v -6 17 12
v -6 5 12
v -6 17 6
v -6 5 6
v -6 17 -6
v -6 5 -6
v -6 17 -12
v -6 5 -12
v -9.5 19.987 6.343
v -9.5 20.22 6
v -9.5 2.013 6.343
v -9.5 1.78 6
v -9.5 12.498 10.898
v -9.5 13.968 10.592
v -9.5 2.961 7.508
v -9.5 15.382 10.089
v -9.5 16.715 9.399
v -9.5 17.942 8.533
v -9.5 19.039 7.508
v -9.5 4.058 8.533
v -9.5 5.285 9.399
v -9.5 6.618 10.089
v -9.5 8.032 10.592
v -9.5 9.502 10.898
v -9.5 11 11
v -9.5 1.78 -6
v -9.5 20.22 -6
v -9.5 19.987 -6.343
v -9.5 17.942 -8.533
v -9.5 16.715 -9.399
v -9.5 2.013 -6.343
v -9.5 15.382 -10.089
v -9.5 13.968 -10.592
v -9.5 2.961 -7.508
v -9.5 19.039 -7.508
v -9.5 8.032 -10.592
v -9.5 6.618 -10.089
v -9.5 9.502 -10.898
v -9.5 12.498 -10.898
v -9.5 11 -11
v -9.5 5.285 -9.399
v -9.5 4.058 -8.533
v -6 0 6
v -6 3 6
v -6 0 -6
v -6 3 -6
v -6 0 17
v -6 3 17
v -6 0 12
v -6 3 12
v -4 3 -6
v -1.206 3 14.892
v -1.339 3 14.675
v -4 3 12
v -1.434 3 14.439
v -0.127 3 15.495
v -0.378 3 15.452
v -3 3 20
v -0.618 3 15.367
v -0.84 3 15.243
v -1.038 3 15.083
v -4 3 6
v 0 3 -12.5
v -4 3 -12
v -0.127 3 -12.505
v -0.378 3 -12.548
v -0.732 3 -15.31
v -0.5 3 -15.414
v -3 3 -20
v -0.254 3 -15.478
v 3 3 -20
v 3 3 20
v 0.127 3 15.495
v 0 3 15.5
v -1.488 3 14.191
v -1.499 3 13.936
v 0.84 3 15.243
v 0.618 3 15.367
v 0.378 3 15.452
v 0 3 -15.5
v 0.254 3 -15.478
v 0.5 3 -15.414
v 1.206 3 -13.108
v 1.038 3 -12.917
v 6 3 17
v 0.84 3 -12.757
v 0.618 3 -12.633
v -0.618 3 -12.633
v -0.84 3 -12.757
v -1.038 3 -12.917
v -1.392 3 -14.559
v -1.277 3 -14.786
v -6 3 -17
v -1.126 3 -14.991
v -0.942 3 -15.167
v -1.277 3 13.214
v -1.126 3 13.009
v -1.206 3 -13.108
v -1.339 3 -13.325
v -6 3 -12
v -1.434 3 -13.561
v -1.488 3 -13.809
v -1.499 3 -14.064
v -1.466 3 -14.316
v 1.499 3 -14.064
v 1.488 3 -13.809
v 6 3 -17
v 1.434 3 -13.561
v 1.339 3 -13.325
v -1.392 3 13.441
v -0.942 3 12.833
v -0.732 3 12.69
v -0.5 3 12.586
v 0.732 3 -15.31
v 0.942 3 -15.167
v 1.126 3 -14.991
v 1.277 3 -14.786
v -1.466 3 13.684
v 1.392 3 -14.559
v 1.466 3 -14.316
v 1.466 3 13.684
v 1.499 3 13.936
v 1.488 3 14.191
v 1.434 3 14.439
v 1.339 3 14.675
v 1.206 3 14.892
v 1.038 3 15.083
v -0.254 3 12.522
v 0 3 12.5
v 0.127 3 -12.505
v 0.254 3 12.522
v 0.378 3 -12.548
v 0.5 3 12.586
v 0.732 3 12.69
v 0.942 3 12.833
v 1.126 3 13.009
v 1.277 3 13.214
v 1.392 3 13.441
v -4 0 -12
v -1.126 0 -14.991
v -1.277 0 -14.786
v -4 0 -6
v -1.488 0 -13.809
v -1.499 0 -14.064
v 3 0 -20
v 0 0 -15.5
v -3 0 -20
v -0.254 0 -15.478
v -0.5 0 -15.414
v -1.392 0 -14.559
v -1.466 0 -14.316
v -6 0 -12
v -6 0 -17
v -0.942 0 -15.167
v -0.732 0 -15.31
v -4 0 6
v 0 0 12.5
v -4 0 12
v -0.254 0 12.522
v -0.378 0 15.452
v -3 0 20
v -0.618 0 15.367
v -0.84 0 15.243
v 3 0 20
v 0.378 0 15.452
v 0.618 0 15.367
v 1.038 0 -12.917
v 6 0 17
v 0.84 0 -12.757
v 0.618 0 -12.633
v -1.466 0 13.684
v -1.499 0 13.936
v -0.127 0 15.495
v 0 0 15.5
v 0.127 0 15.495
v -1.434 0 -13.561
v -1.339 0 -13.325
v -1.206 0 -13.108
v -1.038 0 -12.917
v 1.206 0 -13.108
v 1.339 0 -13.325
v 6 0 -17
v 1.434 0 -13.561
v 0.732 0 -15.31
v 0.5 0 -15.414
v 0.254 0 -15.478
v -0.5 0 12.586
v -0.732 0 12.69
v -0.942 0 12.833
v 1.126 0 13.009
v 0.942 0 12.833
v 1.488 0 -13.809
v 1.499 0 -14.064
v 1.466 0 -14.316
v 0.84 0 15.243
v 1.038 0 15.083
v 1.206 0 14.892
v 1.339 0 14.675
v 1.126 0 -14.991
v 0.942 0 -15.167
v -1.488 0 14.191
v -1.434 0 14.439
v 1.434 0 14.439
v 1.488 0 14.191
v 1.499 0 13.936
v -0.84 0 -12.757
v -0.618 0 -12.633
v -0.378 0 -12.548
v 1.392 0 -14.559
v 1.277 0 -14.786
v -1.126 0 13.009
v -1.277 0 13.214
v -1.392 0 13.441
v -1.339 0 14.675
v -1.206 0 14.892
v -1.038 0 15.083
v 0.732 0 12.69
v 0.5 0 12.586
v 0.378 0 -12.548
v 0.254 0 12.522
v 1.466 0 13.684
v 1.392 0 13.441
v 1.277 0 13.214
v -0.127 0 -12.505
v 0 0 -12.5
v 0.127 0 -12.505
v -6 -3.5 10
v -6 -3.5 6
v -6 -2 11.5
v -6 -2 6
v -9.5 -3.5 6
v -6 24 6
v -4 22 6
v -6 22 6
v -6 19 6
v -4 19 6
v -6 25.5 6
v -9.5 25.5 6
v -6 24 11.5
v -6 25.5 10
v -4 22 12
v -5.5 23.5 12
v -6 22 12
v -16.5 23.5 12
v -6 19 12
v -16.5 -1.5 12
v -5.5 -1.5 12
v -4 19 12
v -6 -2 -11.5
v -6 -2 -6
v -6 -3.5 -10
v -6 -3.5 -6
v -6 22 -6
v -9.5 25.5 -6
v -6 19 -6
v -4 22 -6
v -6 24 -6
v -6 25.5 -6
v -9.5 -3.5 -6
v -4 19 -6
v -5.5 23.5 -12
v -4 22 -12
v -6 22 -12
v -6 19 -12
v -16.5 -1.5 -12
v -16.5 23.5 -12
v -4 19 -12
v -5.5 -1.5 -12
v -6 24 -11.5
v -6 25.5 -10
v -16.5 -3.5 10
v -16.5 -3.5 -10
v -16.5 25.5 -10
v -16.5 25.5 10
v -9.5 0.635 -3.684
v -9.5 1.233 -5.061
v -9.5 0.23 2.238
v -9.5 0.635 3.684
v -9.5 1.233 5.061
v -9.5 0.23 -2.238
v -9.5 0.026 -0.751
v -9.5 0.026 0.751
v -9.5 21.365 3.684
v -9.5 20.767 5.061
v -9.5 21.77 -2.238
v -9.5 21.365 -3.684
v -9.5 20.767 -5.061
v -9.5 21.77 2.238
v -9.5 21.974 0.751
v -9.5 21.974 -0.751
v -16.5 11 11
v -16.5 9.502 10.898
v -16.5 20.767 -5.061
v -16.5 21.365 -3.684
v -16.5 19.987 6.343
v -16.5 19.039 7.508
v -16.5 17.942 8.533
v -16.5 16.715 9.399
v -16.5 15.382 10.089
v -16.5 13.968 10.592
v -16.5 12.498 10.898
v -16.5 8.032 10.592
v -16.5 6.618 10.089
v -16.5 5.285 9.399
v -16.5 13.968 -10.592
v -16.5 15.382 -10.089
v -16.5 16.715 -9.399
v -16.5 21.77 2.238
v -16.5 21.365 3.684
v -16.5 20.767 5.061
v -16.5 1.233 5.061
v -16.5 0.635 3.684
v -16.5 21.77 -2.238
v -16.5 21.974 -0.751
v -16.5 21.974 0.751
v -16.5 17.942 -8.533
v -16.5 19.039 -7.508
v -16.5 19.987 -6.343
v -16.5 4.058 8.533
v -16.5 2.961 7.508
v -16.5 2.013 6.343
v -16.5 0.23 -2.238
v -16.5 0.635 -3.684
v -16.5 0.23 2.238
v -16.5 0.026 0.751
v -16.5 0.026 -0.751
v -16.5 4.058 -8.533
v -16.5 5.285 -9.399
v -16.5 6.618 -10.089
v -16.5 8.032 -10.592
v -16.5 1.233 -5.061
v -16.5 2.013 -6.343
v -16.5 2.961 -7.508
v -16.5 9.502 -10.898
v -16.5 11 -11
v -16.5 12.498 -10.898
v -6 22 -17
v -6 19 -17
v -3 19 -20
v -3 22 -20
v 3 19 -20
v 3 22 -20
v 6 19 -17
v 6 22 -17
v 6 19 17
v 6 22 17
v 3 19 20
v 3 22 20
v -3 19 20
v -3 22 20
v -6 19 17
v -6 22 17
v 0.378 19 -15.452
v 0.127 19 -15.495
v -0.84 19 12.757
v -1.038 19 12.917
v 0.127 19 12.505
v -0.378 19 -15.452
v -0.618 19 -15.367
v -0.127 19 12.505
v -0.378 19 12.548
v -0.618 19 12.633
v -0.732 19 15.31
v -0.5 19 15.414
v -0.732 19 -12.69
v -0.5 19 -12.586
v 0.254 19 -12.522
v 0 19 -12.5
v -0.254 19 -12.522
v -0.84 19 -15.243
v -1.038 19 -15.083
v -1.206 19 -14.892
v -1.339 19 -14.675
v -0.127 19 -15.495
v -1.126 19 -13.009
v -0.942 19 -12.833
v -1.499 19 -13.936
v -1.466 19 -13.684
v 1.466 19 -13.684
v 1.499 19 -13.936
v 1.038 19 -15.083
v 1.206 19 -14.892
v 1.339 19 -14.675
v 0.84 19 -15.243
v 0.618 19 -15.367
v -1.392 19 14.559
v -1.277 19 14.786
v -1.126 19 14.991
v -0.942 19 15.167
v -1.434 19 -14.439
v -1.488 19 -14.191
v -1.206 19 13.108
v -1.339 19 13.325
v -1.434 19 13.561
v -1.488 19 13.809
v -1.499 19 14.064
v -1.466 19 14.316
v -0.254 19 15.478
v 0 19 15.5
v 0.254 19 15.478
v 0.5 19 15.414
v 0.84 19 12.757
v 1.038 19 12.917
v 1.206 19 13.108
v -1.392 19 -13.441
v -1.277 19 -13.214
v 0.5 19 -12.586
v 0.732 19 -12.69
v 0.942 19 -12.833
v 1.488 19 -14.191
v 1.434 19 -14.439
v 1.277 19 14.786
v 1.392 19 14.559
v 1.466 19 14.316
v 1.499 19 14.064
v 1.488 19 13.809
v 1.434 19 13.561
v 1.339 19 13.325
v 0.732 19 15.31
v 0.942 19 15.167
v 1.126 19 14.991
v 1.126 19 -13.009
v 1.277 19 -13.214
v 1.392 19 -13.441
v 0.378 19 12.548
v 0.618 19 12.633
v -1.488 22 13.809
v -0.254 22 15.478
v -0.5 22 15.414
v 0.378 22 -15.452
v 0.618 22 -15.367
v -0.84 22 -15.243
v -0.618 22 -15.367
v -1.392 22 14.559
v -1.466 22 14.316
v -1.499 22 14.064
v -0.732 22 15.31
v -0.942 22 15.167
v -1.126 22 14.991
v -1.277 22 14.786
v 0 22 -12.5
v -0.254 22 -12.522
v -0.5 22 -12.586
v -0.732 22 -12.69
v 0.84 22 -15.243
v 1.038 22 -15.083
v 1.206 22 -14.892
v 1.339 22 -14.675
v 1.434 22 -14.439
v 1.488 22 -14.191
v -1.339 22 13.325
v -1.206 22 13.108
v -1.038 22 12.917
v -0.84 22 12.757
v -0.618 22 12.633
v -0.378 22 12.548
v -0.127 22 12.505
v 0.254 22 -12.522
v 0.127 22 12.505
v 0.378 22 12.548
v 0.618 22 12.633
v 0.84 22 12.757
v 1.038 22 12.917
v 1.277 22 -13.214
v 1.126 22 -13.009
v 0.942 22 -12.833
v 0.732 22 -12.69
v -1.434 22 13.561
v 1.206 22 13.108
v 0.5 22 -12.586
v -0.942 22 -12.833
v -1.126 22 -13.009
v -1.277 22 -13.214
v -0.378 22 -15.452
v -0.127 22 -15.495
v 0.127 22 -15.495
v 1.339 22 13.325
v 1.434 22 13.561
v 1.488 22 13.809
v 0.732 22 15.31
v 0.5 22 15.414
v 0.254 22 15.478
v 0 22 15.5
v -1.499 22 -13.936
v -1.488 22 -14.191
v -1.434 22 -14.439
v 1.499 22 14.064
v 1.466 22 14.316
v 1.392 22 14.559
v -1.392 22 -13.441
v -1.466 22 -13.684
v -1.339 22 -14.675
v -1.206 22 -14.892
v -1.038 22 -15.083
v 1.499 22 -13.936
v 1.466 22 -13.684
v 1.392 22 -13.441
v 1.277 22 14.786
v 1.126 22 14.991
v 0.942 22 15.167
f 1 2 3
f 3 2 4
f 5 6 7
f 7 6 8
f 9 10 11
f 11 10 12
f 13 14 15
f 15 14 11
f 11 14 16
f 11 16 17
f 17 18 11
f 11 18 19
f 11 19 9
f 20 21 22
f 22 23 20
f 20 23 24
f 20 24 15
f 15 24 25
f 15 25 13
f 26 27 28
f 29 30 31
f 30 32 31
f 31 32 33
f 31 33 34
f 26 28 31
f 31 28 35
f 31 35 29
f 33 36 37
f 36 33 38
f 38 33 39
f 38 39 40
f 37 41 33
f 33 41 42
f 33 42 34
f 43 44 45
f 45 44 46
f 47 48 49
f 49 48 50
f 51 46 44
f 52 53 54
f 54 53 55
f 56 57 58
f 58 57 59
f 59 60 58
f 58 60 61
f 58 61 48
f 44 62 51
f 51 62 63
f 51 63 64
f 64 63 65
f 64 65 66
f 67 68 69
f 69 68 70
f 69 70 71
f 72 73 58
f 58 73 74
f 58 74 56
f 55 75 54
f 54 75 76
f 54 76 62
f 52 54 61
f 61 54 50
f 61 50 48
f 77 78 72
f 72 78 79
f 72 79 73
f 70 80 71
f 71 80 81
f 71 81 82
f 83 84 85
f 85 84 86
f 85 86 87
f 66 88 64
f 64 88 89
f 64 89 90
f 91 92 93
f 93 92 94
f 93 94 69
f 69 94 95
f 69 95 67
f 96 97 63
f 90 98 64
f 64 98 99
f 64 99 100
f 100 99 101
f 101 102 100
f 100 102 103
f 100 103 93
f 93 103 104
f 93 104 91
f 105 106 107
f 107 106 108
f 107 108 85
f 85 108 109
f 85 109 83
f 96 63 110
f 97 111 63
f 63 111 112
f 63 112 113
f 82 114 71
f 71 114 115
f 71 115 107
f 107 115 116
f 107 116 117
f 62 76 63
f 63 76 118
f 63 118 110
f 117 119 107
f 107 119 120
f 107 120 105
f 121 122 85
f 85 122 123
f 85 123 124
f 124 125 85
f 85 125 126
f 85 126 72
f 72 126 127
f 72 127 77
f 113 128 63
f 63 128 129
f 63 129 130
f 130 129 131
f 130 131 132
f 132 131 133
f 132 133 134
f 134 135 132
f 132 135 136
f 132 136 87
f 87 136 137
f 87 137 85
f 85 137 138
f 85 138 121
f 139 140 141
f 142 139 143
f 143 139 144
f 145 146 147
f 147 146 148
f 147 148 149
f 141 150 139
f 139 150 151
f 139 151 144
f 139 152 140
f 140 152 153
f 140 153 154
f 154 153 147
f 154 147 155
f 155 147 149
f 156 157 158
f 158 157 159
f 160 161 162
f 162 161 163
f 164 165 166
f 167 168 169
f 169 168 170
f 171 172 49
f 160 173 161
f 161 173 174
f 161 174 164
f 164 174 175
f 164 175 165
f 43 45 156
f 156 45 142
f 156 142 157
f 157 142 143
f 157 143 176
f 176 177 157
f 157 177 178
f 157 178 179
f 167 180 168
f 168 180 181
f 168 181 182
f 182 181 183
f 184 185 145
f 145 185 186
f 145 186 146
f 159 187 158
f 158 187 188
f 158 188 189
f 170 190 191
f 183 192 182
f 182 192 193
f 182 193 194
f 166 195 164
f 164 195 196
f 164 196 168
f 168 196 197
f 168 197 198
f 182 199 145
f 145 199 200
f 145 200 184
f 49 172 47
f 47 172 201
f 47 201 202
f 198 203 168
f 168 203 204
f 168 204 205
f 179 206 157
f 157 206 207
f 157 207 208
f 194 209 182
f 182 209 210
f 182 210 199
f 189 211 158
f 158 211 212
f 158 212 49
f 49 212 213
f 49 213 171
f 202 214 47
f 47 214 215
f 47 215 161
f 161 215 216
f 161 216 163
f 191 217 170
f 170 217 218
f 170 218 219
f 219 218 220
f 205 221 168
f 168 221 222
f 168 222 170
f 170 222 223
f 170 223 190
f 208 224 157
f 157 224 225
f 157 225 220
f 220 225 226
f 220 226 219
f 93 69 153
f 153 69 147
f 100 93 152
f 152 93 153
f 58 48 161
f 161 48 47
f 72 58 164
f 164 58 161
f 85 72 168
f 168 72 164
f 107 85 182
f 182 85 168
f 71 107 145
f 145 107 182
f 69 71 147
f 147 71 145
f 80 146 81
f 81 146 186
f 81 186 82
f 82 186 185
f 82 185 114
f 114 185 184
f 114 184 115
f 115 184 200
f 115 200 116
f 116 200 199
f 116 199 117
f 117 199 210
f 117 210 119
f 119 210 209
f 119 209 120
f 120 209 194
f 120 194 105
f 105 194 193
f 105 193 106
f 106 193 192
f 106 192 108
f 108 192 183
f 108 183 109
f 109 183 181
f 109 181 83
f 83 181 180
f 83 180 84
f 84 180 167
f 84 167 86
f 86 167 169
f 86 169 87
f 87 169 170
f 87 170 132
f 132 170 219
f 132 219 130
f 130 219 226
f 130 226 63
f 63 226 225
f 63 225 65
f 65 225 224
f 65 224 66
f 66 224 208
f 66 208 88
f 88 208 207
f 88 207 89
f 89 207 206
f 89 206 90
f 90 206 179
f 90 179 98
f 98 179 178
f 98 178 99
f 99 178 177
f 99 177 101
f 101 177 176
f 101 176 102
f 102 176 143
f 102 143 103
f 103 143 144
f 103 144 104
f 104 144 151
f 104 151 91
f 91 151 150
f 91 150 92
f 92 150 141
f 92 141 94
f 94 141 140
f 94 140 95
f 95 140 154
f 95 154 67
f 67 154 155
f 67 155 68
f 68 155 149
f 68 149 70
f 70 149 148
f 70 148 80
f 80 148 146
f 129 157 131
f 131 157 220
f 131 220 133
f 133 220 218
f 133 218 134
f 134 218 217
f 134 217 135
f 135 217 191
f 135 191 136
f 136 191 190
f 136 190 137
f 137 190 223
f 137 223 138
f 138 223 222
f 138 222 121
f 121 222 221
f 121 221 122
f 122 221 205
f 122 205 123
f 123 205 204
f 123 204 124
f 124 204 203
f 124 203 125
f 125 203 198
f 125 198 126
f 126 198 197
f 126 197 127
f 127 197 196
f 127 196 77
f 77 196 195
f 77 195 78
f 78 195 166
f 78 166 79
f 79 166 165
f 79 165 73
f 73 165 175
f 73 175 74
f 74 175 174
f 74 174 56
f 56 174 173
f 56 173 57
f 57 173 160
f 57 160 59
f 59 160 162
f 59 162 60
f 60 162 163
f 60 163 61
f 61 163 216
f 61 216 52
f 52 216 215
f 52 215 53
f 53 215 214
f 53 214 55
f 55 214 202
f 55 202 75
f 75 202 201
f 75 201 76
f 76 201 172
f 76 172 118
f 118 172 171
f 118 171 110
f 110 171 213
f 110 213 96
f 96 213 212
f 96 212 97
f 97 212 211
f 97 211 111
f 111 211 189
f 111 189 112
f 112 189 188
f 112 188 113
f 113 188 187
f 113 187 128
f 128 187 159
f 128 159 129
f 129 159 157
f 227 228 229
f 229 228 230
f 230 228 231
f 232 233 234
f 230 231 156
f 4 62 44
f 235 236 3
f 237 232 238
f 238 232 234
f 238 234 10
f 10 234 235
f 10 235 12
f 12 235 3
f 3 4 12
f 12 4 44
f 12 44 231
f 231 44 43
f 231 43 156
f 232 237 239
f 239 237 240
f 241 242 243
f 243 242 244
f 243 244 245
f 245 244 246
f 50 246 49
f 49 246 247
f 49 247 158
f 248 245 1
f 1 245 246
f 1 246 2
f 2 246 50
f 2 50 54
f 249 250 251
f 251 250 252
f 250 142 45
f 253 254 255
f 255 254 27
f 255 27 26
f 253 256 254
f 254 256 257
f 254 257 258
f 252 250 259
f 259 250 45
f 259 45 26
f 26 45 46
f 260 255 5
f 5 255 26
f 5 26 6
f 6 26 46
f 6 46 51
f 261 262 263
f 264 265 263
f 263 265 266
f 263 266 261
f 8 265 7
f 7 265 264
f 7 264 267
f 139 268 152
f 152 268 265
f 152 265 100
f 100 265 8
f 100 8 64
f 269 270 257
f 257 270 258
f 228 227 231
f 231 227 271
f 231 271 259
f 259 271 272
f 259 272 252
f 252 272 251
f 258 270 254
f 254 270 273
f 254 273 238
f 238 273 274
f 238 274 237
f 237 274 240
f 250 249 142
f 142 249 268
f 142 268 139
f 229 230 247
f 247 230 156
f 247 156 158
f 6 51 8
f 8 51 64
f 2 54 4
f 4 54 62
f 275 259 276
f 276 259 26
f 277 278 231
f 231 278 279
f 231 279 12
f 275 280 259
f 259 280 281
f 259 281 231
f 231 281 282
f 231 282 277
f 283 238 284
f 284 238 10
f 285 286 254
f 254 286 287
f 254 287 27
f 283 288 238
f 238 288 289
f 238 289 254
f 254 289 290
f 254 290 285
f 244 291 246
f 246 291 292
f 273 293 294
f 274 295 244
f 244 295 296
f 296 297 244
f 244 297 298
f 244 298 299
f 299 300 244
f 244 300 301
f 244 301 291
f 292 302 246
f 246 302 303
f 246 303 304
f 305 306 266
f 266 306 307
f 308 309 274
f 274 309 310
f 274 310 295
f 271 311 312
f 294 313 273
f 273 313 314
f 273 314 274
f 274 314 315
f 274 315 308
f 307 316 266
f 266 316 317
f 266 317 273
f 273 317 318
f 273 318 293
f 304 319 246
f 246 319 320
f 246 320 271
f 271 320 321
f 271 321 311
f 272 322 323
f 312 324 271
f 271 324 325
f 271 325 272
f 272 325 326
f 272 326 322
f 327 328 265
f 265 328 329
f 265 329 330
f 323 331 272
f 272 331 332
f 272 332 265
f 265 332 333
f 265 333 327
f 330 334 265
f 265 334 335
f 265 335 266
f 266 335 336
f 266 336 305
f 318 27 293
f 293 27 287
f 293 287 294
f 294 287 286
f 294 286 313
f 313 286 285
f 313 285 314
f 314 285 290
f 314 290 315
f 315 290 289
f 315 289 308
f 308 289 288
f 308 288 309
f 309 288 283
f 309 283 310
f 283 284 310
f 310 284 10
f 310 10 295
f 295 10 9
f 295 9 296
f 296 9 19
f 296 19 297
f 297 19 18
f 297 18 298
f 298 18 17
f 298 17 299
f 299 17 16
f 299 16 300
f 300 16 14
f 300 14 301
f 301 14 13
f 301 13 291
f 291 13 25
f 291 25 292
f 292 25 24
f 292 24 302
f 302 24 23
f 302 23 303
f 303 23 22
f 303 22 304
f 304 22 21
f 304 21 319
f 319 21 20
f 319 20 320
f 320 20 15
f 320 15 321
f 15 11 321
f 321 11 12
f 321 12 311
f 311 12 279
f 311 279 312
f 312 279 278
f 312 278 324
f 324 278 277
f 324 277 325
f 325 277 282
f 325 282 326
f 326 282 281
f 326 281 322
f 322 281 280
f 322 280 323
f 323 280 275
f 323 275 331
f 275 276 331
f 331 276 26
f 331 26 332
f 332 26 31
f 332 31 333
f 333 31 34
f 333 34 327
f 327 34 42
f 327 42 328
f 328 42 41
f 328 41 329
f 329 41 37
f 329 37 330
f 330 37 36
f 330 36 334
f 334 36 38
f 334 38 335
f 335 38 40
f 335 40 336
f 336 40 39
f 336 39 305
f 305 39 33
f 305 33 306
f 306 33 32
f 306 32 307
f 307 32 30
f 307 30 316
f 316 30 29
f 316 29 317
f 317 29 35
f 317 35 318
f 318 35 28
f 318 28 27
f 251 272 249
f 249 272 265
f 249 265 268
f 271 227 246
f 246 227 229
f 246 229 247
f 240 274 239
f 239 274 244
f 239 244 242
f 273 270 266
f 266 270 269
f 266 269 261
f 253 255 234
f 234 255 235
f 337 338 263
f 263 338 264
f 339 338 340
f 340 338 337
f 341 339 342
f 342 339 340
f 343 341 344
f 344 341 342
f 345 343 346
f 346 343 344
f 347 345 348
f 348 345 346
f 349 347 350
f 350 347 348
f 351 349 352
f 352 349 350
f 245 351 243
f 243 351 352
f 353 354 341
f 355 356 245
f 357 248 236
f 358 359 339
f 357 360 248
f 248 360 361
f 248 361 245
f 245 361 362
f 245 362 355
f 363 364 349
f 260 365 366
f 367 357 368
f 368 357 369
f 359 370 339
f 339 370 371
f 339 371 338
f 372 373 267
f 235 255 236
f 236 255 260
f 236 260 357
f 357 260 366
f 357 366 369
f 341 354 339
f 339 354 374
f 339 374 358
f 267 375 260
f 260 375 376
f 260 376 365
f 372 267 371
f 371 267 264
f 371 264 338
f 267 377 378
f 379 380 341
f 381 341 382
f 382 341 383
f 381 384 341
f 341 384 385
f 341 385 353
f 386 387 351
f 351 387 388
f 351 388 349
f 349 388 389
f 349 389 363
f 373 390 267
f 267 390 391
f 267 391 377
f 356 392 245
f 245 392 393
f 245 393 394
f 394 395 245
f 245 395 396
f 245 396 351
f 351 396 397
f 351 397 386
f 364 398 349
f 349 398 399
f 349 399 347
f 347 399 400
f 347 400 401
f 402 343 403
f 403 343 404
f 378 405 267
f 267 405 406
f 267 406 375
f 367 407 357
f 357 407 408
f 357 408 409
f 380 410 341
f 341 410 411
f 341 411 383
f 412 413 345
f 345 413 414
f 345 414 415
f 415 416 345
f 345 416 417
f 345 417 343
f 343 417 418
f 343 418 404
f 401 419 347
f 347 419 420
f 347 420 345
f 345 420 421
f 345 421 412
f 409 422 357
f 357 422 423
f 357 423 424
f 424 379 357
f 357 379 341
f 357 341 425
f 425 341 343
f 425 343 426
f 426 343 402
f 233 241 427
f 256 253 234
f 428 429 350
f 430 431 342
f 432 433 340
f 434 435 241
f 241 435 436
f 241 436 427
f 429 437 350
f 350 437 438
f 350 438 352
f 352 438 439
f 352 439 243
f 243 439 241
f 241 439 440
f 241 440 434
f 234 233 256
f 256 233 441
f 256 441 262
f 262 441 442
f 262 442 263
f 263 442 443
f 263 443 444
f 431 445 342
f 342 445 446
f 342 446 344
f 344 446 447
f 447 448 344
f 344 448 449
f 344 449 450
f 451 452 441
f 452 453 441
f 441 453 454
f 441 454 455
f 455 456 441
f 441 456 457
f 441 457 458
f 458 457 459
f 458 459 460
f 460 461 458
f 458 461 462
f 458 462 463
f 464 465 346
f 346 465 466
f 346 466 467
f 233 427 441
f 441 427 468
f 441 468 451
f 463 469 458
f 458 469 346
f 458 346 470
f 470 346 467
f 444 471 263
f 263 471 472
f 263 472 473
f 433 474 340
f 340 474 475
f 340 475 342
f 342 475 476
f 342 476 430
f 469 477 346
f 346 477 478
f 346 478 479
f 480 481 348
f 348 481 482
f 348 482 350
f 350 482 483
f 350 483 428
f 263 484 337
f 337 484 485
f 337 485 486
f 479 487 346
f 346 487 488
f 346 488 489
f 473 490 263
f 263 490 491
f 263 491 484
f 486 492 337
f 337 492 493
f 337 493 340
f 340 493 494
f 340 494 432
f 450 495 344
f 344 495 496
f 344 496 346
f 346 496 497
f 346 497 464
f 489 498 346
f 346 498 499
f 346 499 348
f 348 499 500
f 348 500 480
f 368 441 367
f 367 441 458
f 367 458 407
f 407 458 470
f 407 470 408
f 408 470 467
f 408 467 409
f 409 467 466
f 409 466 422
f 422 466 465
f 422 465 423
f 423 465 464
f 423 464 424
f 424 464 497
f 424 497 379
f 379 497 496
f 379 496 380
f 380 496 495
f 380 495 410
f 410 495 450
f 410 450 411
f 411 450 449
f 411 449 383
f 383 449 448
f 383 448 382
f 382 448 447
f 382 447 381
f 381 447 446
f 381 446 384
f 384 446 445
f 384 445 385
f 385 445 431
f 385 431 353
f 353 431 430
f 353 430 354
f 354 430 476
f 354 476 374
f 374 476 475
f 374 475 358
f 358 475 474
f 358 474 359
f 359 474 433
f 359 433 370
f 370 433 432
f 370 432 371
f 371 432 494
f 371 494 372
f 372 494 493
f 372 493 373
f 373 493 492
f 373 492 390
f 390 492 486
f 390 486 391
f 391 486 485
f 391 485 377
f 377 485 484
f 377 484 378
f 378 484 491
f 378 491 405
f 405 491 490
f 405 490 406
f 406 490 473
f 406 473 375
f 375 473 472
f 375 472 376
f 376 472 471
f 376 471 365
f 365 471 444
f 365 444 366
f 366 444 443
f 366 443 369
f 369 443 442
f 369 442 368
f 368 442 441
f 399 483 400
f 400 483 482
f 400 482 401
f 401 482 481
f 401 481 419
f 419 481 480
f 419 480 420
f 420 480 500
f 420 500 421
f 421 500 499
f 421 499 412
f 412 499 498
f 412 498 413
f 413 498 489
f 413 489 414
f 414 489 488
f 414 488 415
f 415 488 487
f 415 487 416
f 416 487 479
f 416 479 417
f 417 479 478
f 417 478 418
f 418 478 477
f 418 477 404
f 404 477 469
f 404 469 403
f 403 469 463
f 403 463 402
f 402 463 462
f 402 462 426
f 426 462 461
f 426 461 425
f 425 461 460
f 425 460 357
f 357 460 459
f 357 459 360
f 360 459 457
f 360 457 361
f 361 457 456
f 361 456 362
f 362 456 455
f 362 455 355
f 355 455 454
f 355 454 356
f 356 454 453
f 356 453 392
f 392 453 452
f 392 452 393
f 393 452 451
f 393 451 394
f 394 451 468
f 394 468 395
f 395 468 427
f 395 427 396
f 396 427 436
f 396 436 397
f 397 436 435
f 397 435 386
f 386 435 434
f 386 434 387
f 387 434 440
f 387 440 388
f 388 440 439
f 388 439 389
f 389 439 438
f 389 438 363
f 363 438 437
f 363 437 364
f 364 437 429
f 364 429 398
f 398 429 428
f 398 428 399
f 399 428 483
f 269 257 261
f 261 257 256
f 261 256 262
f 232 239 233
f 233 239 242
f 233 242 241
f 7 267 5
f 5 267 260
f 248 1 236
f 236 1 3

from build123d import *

# Parameters (mm, degrees)
SKETCH1_R           = 1.5
BOSS_EXTRUDE1_DEPTH = 3
BOSS_EXTRUDE2_START = 22.5
SKETCH2_W           = 3.5
SKETCH2_H           = 6
BOSS_EXTRUDE2_DEPTH = 29
CHAMFER2_SIZE       = 2
SKETCH3_W           = 24
SKETCH3_H           = 29
SKETCH3_R           = 11
BOSS_EXTRUDE4_DEPTH = 7
CHAMFER3_SIZE       = 2


# Read off the part's stored shape, not the designer's step: Mirror1
with BuildPart() as part:
    # Sketch1 → Boss-Extrude1 (new body)
    with BuildSketch(Plane(origin=(0, 0, 0), x_dir=(1, 0, 0), z_dir=(0, 1, 0))):
        Polygon((-6, 17), (-3, 20), (3, 20), (6, 17), (6, -17), (3, -20), (-3, -20), (-6, -17), align=None)
        with Locations(Location((0, 14, 0), (0, 0, 270))):
            Circle(SKETCH1_R, mode=Mode.SUBTRACT)
        with Locations(Location((0, -14, 0), (0, 0, 270))):
            Circle(SKETCH1_R, mode=Mode.SUBTRACT)
    extrude(amount=BOSS_EXTRUDE1_DEPTH)

    # Sketch2 → Boss-Extrude2 (add)
    with BuildSketch(Plane(origin=(0, 3, 0), x_dir=(1, 0, 0), z_dir=(0, 1, 0)).offset(BOSS_EXTRUDE2_START)):
        with Locations((-7.75, 9)):
            Rectangle(SKETCH2_W, SKETCH2_H)
        with Locations((-7.75, -9)):
            Rectangle(SKETCH2_W, SKETCH2_H)
    extrude(amount=-BOSS_EXTRUDE2_DEPTH)

    # Chamfer2
    chamfer2_edges = [part.edges().sort_by_distance(p)[0] for p in [
        (-6, 0, -9),
        (-6, 0, 9),
        (-6, 3, -9),
        (-6, 3, 9),
    ]]
    chamfer(chamfer2_edges, length=CHAMFER2_SIZE)

    # Sketch3 → Boss-Extrude4 (add)
    with BuildSketch(Plane.ZY.offset(9.5)):
        with Locations((0, 11)):
            Rectangle(SKETCH3_W, SKETCH3_H)
        with Locations(Location((0, 11, 0), (0, 0, 236.944268849))):
            Circle(SKETCH3_R, mode=Mode.SUBTRACT)
    extrude(amount=BOSS_EXTRUDE4_DEPTH)

    # Chamfer3
    chamfer3_edges = [part.edges().sort_by_distance(p)[0] for p in [
        (-11.25, 25.5, -12),
        (-11.25, -3.5, -12),
        (-11.25, -3.5, 12),
        (-11.25, 25.5, 12),
    ]]
    chamfer(chamfer3_edges, length=CHAMFER3_SIZE)

    # Mirror1: part across plane


with BuildPart() as part_1:
    add(part.part)
    add(part.part.mirror(Plane(origin=(0, 11, 0), x_dir=(0, 0, 1), z_dir=(0, -1, 0))))


solid = part_1.part
